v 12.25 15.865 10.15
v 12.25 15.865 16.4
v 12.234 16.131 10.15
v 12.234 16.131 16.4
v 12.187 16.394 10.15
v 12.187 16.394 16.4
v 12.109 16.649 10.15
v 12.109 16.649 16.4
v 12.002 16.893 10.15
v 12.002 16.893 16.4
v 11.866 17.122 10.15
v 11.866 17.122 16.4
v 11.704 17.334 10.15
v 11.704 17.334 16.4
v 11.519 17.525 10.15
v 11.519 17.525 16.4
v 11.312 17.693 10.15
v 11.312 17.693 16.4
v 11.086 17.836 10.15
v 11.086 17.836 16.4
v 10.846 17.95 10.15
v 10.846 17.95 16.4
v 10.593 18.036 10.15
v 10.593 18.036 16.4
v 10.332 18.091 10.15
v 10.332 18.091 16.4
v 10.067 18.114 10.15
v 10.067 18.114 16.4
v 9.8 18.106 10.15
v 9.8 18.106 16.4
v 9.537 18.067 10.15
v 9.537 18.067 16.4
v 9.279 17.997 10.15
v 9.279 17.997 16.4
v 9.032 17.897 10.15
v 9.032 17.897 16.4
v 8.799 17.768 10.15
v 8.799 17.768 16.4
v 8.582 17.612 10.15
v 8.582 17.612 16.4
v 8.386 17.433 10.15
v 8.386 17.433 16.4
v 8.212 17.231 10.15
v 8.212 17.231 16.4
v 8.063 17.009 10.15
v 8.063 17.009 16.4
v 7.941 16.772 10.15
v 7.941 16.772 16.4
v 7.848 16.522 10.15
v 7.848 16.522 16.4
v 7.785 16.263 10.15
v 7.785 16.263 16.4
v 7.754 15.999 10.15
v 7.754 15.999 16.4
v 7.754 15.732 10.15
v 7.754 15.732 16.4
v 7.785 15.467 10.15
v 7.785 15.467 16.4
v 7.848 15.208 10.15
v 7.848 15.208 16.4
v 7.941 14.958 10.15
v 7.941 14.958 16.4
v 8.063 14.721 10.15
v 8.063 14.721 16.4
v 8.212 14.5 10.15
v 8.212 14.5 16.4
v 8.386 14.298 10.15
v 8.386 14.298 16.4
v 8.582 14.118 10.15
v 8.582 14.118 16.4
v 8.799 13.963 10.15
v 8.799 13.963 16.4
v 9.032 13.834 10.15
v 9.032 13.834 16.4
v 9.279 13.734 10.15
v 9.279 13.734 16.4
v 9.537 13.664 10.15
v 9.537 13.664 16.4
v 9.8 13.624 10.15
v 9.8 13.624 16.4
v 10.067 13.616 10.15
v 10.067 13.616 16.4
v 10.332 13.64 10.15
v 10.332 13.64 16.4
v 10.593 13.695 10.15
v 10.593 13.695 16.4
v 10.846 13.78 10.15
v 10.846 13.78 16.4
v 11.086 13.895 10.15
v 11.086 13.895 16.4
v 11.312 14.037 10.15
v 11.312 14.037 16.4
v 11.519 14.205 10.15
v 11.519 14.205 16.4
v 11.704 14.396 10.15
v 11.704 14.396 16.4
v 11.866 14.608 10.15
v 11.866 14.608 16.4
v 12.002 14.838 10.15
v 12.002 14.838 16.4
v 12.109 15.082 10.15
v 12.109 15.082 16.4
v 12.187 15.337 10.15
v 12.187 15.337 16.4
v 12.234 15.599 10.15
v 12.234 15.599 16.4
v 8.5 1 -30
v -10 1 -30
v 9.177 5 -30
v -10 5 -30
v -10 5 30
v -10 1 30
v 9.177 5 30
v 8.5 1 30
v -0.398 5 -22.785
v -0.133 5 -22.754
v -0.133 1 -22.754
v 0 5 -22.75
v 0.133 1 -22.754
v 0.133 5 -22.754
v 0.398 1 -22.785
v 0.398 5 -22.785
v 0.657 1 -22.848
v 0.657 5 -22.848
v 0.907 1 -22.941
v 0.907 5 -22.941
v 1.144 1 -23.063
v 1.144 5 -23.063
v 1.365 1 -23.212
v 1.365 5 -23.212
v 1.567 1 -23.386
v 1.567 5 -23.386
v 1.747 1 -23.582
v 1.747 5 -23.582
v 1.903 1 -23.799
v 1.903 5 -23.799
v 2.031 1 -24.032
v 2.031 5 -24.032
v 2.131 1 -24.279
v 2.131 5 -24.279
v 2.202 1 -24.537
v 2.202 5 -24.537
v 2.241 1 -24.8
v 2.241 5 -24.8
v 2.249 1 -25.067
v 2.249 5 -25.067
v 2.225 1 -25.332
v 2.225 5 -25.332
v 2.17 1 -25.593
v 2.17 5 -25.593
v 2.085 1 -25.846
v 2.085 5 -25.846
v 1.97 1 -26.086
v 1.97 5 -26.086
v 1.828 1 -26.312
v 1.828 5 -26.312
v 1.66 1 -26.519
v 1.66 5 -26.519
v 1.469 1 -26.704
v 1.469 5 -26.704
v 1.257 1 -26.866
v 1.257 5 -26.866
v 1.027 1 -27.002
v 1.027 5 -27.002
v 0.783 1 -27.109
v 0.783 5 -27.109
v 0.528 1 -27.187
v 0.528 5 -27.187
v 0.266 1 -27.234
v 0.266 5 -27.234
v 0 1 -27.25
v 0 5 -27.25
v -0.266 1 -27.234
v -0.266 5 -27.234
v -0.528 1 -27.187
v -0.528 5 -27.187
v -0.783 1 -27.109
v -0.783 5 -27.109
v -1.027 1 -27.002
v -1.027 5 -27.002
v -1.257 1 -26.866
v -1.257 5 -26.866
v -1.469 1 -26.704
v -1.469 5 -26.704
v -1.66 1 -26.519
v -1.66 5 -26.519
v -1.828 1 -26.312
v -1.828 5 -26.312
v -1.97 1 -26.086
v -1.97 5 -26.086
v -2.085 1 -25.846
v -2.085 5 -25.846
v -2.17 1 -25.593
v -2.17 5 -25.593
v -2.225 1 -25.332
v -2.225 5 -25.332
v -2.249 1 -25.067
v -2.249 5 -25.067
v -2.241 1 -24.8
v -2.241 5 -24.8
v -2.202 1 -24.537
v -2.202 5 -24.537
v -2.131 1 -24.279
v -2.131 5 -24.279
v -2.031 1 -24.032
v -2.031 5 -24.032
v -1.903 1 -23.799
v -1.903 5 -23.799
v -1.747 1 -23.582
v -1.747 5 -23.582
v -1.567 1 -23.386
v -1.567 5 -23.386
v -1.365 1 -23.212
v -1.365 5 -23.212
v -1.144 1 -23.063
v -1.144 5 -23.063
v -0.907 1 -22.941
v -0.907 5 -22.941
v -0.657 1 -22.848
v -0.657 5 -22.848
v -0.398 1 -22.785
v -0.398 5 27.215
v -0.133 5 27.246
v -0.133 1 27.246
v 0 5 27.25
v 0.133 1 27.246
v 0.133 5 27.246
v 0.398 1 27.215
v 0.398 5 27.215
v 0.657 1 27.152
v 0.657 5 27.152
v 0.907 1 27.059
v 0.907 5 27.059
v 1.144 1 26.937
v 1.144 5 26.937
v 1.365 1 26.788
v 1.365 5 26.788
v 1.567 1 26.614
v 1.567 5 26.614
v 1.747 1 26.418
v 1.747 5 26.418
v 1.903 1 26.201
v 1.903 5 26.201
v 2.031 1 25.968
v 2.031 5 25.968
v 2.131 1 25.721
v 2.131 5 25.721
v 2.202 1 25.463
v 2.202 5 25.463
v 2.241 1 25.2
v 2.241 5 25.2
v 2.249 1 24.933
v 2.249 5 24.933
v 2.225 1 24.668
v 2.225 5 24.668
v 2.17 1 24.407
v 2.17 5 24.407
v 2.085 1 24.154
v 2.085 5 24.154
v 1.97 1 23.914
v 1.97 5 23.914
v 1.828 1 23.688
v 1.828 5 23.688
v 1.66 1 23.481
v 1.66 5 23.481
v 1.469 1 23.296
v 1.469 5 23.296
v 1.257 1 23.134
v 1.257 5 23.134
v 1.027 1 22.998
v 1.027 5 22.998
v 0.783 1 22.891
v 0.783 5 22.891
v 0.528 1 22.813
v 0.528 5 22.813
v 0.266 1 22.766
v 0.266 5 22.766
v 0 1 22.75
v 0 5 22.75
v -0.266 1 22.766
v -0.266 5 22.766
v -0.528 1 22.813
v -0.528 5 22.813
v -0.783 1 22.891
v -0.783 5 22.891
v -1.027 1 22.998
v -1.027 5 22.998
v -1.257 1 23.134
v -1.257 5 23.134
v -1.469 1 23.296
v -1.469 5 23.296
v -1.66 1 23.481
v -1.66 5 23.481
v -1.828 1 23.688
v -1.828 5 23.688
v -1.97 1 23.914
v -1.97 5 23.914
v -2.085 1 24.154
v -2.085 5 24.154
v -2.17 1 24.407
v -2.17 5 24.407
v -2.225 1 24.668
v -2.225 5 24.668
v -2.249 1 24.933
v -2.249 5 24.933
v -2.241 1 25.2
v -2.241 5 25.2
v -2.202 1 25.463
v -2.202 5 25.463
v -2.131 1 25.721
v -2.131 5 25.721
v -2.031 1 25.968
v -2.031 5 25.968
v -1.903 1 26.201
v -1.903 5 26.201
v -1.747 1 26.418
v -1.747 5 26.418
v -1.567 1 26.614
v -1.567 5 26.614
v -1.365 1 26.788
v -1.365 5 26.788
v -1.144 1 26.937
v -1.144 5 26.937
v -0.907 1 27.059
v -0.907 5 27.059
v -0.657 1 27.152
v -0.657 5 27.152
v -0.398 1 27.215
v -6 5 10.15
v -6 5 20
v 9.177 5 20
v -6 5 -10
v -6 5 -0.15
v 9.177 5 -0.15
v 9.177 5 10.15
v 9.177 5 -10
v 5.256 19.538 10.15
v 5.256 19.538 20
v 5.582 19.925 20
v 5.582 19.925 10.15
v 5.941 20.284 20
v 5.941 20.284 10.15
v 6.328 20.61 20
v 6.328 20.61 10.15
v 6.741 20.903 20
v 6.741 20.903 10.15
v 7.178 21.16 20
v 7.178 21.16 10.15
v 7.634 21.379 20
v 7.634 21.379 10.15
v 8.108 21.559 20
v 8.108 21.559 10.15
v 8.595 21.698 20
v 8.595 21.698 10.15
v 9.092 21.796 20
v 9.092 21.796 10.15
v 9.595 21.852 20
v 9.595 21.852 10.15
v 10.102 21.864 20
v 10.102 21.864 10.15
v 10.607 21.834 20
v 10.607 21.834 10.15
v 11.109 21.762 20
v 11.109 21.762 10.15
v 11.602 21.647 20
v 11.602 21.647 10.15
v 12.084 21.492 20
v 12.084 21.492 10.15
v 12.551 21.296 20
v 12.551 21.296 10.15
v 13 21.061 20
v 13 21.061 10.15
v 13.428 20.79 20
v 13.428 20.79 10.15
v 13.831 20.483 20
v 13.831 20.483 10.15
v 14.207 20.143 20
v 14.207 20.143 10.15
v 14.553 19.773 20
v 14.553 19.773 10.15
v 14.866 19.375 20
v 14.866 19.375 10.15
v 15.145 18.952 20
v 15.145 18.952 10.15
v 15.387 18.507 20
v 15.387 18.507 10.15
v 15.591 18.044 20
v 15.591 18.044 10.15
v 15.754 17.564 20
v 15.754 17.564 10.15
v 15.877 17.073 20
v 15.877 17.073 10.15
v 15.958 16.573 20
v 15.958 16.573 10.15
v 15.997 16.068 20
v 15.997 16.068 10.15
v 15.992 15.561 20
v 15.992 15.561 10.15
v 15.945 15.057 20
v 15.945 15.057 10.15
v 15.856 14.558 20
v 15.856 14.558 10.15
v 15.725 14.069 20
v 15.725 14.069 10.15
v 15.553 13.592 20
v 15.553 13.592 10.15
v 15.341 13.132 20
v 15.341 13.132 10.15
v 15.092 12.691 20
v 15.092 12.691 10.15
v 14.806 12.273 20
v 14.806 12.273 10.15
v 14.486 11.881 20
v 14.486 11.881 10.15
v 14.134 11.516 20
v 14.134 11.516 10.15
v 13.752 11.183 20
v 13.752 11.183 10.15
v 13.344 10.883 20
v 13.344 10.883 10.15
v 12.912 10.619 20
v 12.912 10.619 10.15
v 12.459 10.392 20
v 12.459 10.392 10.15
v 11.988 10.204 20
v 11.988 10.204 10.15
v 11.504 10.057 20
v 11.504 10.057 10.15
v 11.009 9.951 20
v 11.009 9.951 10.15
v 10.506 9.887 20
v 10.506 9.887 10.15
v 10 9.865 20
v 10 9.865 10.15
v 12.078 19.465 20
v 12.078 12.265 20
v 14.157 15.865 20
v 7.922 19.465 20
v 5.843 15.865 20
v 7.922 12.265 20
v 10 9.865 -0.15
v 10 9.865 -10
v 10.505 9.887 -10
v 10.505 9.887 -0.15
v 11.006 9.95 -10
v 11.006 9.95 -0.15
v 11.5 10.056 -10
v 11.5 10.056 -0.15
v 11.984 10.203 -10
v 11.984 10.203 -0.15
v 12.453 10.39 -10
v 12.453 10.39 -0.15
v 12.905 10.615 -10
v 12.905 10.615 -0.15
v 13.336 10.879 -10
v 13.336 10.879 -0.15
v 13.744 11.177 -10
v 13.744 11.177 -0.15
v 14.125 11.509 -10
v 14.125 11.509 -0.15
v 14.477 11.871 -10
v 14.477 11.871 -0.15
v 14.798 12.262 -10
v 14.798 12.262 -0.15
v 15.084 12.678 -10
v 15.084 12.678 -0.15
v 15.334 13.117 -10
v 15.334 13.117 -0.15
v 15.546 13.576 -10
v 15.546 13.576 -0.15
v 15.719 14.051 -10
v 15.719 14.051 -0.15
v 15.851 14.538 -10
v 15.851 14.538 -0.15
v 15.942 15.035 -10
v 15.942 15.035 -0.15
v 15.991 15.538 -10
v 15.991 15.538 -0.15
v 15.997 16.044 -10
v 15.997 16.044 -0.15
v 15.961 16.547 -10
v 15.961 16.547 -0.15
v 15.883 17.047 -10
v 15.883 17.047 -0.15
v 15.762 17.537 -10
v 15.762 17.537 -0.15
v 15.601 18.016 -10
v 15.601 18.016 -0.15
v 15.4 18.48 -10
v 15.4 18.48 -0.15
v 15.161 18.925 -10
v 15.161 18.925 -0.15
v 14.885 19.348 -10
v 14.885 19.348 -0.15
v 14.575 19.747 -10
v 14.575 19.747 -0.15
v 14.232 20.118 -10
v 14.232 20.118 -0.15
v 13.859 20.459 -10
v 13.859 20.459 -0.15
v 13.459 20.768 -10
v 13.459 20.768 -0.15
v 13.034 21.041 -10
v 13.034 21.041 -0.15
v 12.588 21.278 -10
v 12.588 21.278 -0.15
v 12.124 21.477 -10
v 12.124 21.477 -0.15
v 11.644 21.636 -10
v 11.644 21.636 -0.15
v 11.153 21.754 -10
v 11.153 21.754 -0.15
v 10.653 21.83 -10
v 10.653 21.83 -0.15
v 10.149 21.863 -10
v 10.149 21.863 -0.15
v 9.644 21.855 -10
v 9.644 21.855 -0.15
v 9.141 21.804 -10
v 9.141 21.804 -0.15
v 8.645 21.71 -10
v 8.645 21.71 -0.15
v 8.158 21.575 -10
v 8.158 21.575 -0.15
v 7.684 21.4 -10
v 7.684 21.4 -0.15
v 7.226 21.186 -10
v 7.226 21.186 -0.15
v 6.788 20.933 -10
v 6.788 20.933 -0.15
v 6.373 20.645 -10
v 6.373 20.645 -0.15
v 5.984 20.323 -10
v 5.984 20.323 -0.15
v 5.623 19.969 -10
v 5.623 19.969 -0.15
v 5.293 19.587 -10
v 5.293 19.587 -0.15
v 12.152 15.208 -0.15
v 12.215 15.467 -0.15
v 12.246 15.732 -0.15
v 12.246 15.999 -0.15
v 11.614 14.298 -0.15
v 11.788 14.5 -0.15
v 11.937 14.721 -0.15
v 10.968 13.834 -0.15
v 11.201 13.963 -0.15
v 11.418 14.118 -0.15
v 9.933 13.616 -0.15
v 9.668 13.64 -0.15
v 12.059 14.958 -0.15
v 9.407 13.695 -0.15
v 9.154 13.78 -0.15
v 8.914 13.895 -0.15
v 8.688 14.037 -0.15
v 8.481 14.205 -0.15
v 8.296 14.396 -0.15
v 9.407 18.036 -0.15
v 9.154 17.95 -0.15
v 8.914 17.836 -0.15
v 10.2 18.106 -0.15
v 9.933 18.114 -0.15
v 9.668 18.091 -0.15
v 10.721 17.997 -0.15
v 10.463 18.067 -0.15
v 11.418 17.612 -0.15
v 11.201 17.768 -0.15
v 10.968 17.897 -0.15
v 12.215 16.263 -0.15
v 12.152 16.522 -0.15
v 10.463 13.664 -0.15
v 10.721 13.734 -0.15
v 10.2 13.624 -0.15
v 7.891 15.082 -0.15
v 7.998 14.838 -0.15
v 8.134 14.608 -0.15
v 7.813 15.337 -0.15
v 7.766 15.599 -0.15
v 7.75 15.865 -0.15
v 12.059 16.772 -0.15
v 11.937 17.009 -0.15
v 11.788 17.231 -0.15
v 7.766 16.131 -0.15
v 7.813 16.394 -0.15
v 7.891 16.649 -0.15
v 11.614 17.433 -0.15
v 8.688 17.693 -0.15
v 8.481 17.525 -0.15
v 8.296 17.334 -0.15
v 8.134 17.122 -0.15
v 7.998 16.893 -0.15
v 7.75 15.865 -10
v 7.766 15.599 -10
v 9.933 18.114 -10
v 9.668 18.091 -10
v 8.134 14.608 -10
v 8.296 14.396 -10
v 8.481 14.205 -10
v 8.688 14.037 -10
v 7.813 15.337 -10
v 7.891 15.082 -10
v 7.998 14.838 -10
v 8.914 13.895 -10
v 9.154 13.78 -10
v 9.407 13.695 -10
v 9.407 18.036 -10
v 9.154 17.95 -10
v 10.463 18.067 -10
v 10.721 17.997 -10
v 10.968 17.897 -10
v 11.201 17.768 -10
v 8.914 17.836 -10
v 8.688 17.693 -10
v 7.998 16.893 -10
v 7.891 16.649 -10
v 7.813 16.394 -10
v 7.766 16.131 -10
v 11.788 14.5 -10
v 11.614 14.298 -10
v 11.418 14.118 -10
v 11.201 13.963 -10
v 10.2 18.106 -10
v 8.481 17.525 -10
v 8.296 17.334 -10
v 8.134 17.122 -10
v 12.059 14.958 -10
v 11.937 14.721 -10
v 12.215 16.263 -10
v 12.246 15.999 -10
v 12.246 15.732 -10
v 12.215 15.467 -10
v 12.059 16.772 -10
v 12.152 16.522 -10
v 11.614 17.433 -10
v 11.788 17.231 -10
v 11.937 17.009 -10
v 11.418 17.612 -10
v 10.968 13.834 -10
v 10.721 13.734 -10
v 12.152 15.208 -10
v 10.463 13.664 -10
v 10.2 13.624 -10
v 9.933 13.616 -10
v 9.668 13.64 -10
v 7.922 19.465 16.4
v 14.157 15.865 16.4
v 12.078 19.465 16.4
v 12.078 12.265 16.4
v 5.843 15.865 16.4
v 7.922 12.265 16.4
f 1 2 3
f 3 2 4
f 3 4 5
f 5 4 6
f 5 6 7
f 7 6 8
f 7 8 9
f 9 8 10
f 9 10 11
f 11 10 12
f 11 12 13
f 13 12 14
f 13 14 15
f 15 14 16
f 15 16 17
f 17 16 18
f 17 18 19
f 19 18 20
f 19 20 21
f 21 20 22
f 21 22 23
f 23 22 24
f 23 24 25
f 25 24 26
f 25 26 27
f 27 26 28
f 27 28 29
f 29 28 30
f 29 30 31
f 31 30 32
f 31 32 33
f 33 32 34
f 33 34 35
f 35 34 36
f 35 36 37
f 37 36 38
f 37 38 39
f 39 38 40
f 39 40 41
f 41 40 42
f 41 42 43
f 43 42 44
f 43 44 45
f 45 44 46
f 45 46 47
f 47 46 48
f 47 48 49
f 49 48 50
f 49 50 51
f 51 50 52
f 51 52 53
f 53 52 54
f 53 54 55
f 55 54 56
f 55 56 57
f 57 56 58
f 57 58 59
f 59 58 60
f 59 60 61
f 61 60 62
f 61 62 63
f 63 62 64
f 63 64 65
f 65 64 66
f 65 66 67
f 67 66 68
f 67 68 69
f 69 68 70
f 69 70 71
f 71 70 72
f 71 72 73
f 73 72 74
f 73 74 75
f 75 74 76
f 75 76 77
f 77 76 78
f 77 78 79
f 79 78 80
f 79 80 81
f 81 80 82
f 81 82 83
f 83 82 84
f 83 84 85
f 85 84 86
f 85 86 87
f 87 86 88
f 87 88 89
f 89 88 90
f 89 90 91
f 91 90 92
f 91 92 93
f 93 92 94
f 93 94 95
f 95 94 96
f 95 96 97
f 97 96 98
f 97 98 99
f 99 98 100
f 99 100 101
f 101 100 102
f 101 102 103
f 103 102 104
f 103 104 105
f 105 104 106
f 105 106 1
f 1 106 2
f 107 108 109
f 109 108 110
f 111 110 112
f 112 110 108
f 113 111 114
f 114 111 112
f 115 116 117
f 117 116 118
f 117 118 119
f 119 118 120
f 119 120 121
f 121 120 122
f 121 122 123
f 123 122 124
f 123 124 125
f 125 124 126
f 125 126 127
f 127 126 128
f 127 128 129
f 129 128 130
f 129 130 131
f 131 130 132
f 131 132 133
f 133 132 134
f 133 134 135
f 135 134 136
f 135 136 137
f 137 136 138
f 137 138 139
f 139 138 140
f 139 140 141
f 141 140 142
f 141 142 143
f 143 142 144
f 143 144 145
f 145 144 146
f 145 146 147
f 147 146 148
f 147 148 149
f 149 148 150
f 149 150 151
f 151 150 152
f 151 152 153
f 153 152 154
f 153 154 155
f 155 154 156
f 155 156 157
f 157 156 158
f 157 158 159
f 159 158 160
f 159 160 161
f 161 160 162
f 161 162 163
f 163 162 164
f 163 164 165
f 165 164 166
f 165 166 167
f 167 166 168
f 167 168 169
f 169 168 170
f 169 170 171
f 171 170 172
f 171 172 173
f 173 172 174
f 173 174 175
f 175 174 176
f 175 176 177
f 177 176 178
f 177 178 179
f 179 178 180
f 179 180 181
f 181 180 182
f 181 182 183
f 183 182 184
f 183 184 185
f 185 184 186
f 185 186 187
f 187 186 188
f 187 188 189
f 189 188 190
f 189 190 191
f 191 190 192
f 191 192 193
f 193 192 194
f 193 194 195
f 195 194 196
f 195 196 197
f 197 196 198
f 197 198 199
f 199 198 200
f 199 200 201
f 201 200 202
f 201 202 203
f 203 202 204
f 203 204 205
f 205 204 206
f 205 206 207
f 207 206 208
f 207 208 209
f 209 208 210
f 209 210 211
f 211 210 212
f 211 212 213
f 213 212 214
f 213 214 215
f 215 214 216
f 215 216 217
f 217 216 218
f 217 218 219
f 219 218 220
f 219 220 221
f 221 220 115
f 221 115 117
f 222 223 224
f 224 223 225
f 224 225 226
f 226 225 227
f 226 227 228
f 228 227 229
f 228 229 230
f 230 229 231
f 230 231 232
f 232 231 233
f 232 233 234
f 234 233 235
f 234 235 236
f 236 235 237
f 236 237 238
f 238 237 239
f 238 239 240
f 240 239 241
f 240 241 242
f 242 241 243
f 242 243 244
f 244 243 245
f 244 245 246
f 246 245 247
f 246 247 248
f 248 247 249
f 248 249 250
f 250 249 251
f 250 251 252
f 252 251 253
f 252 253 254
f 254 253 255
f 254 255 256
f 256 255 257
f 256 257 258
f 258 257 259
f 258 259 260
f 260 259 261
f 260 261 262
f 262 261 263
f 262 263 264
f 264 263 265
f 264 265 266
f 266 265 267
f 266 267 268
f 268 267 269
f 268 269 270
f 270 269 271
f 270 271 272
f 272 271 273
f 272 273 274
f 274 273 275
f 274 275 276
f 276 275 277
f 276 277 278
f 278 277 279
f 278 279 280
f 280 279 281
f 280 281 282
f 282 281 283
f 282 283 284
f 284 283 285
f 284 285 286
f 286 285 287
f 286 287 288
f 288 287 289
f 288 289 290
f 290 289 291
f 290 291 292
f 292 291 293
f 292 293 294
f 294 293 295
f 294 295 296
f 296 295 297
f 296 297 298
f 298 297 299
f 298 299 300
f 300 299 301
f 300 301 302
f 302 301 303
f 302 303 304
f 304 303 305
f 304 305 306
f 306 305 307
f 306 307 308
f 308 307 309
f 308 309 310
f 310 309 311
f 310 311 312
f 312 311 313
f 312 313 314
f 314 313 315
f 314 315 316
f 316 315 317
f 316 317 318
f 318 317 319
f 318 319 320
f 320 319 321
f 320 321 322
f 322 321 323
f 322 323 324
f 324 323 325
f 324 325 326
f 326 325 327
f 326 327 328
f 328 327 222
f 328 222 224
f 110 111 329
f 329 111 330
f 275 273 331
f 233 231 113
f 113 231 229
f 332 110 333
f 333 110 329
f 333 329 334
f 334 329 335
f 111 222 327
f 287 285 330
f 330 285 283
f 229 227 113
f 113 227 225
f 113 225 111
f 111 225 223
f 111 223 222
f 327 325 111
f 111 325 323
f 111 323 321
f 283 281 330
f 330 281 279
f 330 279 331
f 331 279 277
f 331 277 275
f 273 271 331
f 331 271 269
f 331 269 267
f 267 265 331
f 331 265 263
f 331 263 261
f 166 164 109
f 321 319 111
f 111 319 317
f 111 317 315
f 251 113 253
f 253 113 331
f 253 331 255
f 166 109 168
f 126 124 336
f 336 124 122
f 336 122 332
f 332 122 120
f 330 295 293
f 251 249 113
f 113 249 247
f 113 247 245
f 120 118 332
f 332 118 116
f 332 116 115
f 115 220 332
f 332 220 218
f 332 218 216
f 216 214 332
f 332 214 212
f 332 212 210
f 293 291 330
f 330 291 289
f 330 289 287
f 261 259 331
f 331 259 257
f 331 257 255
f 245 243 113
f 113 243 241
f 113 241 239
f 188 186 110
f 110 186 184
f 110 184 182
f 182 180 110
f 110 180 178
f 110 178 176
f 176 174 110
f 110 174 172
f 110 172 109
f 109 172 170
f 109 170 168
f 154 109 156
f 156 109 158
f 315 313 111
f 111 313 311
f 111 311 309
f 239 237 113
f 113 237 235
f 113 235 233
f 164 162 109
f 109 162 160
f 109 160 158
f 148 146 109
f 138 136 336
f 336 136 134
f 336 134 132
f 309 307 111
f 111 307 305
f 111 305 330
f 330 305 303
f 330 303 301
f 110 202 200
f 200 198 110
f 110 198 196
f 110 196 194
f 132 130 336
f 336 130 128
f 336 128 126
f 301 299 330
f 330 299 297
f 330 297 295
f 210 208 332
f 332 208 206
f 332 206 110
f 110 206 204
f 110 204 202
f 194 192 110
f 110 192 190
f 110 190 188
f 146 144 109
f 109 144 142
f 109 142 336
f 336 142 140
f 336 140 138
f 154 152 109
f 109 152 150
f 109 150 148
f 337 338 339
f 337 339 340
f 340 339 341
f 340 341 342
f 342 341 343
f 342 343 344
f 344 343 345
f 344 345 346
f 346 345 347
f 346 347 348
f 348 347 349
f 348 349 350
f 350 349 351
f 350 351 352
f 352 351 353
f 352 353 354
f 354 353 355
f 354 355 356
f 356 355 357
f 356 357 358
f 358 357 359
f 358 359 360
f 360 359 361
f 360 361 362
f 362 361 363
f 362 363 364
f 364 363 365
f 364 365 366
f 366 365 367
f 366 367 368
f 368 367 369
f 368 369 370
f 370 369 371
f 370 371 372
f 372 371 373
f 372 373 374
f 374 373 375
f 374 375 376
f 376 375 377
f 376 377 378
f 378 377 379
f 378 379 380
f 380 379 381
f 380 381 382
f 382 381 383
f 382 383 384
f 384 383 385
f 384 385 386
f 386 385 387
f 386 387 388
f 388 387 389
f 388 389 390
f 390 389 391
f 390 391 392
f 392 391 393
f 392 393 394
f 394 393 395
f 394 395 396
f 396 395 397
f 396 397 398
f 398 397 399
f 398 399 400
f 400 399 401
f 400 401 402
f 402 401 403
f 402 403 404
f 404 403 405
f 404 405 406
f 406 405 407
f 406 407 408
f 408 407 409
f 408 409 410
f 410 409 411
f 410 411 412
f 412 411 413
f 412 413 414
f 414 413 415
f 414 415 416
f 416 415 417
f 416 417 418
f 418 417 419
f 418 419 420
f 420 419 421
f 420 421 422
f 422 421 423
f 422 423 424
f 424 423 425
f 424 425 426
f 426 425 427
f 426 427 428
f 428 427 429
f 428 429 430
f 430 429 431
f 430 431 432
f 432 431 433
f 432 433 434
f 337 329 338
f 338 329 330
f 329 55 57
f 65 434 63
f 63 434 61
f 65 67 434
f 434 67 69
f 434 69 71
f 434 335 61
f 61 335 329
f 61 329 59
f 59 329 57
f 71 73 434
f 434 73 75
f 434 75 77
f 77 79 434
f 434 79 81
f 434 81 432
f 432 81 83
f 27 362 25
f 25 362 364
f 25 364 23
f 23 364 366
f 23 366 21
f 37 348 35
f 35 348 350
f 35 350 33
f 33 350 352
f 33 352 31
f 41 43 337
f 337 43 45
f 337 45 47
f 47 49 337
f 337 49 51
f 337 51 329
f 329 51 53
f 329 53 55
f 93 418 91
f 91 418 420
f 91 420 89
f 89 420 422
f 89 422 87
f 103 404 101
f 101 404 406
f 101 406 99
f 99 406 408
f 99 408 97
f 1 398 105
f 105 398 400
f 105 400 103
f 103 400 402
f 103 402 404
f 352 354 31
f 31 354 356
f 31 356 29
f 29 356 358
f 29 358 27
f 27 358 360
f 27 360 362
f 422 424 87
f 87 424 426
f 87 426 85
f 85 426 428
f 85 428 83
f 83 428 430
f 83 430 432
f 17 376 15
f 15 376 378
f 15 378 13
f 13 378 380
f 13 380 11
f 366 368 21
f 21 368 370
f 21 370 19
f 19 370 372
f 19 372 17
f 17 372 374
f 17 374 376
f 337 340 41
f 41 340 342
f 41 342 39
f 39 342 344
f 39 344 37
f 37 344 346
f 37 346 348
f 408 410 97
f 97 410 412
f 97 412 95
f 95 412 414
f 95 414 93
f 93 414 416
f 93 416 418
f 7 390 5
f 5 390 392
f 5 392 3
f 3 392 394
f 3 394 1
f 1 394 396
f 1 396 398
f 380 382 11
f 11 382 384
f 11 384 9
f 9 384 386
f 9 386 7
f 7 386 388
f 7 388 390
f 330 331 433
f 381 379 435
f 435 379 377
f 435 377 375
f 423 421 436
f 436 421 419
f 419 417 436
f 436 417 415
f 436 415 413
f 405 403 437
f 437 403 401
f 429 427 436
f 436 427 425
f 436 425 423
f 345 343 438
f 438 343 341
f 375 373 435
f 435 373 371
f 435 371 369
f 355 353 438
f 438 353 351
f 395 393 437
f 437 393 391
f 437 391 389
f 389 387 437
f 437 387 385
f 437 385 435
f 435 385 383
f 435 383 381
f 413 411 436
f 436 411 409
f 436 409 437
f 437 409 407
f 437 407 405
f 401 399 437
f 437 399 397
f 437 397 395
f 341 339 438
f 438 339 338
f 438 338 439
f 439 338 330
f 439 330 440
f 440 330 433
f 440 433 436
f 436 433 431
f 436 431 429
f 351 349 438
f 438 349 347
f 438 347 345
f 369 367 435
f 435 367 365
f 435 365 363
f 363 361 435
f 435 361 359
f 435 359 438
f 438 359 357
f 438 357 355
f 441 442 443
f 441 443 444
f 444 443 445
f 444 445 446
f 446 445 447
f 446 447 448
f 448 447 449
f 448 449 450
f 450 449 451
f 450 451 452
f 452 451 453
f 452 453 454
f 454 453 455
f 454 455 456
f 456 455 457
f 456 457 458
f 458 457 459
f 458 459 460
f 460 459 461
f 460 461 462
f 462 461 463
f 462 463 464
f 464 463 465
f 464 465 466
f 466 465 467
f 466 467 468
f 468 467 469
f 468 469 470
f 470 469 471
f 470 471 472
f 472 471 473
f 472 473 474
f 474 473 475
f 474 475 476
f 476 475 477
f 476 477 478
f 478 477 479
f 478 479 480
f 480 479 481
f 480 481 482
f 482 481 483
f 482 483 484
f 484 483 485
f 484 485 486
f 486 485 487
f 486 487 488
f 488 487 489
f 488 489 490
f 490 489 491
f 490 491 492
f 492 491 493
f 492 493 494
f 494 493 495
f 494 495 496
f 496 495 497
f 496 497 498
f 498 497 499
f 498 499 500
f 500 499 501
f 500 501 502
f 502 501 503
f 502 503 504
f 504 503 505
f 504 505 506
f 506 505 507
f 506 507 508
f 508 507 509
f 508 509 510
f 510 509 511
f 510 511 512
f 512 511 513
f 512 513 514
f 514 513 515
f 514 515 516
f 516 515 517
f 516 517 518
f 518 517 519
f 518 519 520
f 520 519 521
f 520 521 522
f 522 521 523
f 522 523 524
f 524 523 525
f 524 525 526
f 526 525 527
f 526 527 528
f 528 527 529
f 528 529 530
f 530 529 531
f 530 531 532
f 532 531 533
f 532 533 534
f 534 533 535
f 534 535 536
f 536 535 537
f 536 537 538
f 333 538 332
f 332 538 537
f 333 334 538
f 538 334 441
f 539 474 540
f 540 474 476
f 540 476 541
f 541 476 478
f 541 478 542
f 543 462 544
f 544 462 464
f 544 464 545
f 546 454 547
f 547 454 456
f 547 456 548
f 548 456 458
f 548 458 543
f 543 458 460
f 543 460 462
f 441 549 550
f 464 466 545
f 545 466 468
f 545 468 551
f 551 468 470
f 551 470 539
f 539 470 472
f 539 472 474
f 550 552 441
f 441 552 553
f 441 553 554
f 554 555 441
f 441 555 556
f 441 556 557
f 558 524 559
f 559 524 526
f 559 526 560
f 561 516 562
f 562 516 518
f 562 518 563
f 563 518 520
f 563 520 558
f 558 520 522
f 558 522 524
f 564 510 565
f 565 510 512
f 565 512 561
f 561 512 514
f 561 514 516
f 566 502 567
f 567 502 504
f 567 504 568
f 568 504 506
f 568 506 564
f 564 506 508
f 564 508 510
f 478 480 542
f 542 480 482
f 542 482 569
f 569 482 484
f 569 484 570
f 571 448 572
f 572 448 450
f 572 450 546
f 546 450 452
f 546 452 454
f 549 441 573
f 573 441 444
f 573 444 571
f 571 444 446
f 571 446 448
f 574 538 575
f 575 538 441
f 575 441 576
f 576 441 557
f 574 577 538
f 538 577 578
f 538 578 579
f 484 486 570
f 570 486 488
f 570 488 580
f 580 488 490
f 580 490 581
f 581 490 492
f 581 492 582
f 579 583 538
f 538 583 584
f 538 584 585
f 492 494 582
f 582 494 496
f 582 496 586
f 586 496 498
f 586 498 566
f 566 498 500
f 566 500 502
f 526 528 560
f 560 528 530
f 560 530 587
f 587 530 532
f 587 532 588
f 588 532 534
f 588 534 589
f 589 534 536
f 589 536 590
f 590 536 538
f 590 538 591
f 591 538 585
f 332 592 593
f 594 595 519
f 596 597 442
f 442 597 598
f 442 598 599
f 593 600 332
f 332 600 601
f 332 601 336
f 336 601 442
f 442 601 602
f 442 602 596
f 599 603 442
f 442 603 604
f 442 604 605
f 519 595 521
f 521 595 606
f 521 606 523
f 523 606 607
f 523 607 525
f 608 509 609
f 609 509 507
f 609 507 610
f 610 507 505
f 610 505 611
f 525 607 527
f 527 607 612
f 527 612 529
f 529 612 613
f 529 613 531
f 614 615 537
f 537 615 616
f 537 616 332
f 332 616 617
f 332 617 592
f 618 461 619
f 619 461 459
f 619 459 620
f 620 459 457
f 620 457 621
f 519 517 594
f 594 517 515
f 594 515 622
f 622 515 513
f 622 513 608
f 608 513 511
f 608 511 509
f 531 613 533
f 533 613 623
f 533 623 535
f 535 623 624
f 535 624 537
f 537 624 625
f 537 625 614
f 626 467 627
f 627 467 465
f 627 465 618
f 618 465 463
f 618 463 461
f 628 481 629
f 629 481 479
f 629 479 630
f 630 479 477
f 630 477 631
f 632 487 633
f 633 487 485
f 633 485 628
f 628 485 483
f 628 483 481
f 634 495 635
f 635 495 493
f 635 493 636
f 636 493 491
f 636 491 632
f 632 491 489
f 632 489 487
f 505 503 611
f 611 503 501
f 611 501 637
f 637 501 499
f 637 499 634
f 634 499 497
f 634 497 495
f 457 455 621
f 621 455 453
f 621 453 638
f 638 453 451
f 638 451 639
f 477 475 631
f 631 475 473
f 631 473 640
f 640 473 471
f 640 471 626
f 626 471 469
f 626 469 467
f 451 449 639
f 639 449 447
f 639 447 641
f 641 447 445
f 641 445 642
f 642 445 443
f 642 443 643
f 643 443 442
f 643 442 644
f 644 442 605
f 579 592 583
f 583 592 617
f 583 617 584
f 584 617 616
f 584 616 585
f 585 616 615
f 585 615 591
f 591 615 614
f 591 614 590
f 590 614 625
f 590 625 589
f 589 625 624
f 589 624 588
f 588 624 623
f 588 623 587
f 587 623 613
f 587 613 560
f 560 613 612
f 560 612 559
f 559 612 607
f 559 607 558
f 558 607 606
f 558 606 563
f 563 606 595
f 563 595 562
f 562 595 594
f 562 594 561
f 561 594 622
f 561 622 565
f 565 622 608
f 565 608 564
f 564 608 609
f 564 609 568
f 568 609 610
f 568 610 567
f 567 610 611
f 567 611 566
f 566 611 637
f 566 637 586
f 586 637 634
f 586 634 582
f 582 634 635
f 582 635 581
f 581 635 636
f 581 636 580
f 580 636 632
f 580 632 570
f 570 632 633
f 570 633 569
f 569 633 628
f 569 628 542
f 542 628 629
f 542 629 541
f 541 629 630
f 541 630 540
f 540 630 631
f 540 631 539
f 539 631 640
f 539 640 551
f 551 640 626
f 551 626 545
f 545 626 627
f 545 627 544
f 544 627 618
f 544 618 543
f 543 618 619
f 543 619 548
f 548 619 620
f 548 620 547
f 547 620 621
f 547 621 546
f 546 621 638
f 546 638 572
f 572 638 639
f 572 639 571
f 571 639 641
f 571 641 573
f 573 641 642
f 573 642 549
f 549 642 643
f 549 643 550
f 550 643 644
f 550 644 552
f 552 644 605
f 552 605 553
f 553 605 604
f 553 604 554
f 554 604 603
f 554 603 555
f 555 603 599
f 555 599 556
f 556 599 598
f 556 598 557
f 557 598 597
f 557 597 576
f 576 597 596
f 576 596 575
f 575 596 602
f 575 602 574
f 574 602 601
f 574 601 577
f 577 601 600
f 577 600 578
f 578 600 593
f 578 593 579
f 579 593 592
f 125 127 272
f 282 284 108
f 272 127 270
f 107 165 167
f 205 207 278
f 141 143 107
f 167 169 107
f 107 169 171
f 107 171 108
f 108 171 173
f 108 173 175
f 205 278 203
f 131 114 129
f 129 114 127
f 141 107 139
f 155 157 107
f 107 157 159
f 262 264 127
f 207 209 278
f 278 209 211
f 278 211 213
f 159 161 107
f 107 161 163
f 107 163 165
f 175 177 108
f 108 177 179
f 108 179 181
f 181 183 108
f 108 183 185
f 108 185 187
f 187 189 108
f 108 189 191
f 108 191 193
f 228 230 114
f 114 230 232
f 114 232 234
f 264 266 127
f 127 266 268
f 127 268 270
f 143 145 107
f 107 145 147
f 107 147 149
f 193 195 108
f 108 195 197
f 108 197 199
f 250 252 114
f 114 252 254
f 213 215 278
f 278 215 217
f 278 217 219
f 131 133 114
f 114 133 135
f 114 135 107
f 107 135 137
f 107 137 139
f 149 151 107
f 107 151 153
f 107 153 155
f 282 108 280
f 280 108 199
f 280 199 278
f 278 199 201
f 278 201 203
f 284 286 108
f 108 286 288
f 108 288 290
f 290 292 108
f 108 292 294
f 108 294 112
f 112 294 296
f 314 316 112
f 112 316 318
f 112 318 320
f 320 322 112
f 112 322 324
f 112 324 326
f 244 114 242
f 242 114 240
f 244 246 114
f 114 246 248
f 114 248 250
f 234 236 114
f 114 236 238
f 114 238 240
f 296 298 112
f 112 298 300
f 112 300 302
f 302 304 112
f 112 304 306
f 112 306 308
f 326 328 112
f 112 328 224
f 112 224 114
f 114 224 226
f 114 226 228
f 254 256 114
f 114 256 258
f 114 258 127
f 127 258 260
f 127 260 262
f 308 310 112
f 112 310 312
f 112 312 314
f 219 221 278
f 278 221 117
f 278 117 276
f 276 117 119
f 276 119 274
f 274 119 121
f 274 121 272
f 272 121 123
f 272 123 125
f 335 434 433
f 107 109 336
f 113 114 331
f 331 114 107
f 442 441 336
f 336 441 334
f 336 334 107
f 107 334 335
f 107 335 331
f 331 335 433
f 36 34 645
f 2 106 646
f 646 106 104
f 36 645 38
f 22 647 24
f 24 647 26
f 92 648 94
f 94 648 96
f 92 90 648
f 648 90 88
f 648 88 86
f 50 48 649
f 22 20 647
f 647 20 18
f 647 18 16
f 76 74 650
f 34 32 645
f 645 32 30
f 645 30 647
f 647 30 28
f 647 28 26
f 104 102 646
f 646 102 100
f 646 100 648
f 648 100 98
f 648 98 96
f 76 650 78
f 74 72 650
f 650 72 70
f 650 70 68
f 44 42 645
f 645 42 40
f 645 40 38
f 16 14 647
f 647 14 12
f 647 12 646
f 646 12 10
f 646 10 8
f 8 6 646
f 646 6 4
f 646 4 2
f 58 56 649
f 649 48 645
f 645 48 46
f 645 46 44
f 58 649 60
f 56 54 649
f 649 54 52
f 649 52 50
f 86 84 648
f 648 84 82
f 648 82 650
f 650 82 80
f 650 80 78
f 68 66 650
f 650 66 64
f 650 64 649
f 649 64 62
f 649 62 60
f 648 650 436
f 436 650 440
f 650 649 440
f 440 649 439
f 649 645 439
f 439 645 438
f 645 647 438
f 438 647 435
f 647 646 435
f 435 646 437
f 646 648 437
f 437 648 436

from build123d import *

# Parameters (mm, degrees)
SKETCH1_W           = 20
SKETCH1_H           = 60
SKETCH1_R           = 2.25
BOSS_EXTRUDE1_DEPTH = 5
SKETCH2_R           = 2.25
BOSS_EXTRUDE2_DEPTH = 9.85
SKETCH3_R           = 2.25
BOSS_EXTRUDE3_DEPTH = 9.85
SKETCH4_W           = 33.827008901
SKETCH4_H           = 72.568076527
CUT_EXTRUDE1_DEPTH  = 1
CUT_EXTRUDE2_DEPTH  = 61
CUT_EXTRUDE3_DEPTH  = 3.6


with BuildPart() as part:
    # Sketch1 → Boss-Extrude1 (new body)
    with BuildSketch(Plane(origin=(0, 0, 0), x_dir=(1, 0, 0), z_dir=(0, 1, 0))):
        Rectangle(SKETCH1_W, SKETCH1_H)
        with Locations((0, 25)):
            Circle(SKETCH1_R, mode=Mode.SUBTRACT)
        with Locations((0, -25)):
            Circle(SKETCH1_R, mode=Mode.SUBTRACT)
    extrude(amount=BOSS_EXTRUDE1_DEPTH)

    # Sketch2 → Boss-Extrude2 (add)
    with BuildSketch(Plane.XY.offset(20)):
        with BuildLine():
            Line((10, 9.86530346), (10, 5))
            Line((10, 5), (-6, 5))
            Line((-6, 5), (5.255684086, 19.53837663))
            ThreePointArc((5.255684086, 19.53837663), (15.386948998, 18.507420129), (10, 9.86530346))
        make_face()
        with Locations((10, 15.86530346)):
            Circle(SKETCH2_R, mode=Mode.SUBTRACT)
    extrude(amount=-BOSS_EXTRUDE2_DEPTH)

    # Sketch3 → Boss-Extrude3 (add)
    with BuildSketch(Plane(origin=(0, 0, -10), x_dir=(-1, 0, 0), z_dir=(0, 0, -1))):
        with BuildLine():
            Line((-10, 9.86530346), (-10, 5))
            Line((-10, 5), (6, 5))
            Line((6, 5), (-5.293415142, 19.586601483))
            ThreePointArc((-5.293415142, 19.586601483), (-15.40036055, 18.479898253), (-10, 9.86530346))
        make_face()
        with Locations((-10, 15.86530346)):
            Circle(SKETCH3_R, mode=Mode.SUBTRACT)
    extrude(amount=-BOSS_EXTRUDE3_DEPTH)

    # Sketch4 → Cut-Extrude1 (cut)
    with BuildSketch(Plane.XZ):
        with Locations((1.488581003, -1.778467764)):
            Rectangle(SKETCH4_W, SKETCH4_H)
    extrude(amount=-CUT_EXTRUDE1_DEPTH, mode=Mode.SUBTRACT)

    # Sketch5 → Cut-Extrude2 (cut, through all)
    with BuildSketch(Plane(origin=(0, 0, -30), x_dir=(-1, 0, 0), z_dir=(0, 0, -1))):
        Polygon((-10, 9.86530346), (-10, 1), (-8.5, 1), align=None)
    extrude(amount=-CUT_EXTRUDE2_DEPTH, mode=Mode.SUBTRACT)

    # Sketch6 → Cut-Extrude3 (cut)
    with BuildSketch(Plane.XY.offset(20)):
        Polygon((12.078460969, 12.26530346), (14.156921938, 15.86530346), (12.078460969, 19.46530346), (7.921539031, 19.46530346), (5.843078062, 15.86530346), (7.921539031, 12.26530346), align=None)
    extrude(amount=-CUT_EXTRUDE3_DEPTH, mode=Mode.SUBTRACT)


solid = part.part
